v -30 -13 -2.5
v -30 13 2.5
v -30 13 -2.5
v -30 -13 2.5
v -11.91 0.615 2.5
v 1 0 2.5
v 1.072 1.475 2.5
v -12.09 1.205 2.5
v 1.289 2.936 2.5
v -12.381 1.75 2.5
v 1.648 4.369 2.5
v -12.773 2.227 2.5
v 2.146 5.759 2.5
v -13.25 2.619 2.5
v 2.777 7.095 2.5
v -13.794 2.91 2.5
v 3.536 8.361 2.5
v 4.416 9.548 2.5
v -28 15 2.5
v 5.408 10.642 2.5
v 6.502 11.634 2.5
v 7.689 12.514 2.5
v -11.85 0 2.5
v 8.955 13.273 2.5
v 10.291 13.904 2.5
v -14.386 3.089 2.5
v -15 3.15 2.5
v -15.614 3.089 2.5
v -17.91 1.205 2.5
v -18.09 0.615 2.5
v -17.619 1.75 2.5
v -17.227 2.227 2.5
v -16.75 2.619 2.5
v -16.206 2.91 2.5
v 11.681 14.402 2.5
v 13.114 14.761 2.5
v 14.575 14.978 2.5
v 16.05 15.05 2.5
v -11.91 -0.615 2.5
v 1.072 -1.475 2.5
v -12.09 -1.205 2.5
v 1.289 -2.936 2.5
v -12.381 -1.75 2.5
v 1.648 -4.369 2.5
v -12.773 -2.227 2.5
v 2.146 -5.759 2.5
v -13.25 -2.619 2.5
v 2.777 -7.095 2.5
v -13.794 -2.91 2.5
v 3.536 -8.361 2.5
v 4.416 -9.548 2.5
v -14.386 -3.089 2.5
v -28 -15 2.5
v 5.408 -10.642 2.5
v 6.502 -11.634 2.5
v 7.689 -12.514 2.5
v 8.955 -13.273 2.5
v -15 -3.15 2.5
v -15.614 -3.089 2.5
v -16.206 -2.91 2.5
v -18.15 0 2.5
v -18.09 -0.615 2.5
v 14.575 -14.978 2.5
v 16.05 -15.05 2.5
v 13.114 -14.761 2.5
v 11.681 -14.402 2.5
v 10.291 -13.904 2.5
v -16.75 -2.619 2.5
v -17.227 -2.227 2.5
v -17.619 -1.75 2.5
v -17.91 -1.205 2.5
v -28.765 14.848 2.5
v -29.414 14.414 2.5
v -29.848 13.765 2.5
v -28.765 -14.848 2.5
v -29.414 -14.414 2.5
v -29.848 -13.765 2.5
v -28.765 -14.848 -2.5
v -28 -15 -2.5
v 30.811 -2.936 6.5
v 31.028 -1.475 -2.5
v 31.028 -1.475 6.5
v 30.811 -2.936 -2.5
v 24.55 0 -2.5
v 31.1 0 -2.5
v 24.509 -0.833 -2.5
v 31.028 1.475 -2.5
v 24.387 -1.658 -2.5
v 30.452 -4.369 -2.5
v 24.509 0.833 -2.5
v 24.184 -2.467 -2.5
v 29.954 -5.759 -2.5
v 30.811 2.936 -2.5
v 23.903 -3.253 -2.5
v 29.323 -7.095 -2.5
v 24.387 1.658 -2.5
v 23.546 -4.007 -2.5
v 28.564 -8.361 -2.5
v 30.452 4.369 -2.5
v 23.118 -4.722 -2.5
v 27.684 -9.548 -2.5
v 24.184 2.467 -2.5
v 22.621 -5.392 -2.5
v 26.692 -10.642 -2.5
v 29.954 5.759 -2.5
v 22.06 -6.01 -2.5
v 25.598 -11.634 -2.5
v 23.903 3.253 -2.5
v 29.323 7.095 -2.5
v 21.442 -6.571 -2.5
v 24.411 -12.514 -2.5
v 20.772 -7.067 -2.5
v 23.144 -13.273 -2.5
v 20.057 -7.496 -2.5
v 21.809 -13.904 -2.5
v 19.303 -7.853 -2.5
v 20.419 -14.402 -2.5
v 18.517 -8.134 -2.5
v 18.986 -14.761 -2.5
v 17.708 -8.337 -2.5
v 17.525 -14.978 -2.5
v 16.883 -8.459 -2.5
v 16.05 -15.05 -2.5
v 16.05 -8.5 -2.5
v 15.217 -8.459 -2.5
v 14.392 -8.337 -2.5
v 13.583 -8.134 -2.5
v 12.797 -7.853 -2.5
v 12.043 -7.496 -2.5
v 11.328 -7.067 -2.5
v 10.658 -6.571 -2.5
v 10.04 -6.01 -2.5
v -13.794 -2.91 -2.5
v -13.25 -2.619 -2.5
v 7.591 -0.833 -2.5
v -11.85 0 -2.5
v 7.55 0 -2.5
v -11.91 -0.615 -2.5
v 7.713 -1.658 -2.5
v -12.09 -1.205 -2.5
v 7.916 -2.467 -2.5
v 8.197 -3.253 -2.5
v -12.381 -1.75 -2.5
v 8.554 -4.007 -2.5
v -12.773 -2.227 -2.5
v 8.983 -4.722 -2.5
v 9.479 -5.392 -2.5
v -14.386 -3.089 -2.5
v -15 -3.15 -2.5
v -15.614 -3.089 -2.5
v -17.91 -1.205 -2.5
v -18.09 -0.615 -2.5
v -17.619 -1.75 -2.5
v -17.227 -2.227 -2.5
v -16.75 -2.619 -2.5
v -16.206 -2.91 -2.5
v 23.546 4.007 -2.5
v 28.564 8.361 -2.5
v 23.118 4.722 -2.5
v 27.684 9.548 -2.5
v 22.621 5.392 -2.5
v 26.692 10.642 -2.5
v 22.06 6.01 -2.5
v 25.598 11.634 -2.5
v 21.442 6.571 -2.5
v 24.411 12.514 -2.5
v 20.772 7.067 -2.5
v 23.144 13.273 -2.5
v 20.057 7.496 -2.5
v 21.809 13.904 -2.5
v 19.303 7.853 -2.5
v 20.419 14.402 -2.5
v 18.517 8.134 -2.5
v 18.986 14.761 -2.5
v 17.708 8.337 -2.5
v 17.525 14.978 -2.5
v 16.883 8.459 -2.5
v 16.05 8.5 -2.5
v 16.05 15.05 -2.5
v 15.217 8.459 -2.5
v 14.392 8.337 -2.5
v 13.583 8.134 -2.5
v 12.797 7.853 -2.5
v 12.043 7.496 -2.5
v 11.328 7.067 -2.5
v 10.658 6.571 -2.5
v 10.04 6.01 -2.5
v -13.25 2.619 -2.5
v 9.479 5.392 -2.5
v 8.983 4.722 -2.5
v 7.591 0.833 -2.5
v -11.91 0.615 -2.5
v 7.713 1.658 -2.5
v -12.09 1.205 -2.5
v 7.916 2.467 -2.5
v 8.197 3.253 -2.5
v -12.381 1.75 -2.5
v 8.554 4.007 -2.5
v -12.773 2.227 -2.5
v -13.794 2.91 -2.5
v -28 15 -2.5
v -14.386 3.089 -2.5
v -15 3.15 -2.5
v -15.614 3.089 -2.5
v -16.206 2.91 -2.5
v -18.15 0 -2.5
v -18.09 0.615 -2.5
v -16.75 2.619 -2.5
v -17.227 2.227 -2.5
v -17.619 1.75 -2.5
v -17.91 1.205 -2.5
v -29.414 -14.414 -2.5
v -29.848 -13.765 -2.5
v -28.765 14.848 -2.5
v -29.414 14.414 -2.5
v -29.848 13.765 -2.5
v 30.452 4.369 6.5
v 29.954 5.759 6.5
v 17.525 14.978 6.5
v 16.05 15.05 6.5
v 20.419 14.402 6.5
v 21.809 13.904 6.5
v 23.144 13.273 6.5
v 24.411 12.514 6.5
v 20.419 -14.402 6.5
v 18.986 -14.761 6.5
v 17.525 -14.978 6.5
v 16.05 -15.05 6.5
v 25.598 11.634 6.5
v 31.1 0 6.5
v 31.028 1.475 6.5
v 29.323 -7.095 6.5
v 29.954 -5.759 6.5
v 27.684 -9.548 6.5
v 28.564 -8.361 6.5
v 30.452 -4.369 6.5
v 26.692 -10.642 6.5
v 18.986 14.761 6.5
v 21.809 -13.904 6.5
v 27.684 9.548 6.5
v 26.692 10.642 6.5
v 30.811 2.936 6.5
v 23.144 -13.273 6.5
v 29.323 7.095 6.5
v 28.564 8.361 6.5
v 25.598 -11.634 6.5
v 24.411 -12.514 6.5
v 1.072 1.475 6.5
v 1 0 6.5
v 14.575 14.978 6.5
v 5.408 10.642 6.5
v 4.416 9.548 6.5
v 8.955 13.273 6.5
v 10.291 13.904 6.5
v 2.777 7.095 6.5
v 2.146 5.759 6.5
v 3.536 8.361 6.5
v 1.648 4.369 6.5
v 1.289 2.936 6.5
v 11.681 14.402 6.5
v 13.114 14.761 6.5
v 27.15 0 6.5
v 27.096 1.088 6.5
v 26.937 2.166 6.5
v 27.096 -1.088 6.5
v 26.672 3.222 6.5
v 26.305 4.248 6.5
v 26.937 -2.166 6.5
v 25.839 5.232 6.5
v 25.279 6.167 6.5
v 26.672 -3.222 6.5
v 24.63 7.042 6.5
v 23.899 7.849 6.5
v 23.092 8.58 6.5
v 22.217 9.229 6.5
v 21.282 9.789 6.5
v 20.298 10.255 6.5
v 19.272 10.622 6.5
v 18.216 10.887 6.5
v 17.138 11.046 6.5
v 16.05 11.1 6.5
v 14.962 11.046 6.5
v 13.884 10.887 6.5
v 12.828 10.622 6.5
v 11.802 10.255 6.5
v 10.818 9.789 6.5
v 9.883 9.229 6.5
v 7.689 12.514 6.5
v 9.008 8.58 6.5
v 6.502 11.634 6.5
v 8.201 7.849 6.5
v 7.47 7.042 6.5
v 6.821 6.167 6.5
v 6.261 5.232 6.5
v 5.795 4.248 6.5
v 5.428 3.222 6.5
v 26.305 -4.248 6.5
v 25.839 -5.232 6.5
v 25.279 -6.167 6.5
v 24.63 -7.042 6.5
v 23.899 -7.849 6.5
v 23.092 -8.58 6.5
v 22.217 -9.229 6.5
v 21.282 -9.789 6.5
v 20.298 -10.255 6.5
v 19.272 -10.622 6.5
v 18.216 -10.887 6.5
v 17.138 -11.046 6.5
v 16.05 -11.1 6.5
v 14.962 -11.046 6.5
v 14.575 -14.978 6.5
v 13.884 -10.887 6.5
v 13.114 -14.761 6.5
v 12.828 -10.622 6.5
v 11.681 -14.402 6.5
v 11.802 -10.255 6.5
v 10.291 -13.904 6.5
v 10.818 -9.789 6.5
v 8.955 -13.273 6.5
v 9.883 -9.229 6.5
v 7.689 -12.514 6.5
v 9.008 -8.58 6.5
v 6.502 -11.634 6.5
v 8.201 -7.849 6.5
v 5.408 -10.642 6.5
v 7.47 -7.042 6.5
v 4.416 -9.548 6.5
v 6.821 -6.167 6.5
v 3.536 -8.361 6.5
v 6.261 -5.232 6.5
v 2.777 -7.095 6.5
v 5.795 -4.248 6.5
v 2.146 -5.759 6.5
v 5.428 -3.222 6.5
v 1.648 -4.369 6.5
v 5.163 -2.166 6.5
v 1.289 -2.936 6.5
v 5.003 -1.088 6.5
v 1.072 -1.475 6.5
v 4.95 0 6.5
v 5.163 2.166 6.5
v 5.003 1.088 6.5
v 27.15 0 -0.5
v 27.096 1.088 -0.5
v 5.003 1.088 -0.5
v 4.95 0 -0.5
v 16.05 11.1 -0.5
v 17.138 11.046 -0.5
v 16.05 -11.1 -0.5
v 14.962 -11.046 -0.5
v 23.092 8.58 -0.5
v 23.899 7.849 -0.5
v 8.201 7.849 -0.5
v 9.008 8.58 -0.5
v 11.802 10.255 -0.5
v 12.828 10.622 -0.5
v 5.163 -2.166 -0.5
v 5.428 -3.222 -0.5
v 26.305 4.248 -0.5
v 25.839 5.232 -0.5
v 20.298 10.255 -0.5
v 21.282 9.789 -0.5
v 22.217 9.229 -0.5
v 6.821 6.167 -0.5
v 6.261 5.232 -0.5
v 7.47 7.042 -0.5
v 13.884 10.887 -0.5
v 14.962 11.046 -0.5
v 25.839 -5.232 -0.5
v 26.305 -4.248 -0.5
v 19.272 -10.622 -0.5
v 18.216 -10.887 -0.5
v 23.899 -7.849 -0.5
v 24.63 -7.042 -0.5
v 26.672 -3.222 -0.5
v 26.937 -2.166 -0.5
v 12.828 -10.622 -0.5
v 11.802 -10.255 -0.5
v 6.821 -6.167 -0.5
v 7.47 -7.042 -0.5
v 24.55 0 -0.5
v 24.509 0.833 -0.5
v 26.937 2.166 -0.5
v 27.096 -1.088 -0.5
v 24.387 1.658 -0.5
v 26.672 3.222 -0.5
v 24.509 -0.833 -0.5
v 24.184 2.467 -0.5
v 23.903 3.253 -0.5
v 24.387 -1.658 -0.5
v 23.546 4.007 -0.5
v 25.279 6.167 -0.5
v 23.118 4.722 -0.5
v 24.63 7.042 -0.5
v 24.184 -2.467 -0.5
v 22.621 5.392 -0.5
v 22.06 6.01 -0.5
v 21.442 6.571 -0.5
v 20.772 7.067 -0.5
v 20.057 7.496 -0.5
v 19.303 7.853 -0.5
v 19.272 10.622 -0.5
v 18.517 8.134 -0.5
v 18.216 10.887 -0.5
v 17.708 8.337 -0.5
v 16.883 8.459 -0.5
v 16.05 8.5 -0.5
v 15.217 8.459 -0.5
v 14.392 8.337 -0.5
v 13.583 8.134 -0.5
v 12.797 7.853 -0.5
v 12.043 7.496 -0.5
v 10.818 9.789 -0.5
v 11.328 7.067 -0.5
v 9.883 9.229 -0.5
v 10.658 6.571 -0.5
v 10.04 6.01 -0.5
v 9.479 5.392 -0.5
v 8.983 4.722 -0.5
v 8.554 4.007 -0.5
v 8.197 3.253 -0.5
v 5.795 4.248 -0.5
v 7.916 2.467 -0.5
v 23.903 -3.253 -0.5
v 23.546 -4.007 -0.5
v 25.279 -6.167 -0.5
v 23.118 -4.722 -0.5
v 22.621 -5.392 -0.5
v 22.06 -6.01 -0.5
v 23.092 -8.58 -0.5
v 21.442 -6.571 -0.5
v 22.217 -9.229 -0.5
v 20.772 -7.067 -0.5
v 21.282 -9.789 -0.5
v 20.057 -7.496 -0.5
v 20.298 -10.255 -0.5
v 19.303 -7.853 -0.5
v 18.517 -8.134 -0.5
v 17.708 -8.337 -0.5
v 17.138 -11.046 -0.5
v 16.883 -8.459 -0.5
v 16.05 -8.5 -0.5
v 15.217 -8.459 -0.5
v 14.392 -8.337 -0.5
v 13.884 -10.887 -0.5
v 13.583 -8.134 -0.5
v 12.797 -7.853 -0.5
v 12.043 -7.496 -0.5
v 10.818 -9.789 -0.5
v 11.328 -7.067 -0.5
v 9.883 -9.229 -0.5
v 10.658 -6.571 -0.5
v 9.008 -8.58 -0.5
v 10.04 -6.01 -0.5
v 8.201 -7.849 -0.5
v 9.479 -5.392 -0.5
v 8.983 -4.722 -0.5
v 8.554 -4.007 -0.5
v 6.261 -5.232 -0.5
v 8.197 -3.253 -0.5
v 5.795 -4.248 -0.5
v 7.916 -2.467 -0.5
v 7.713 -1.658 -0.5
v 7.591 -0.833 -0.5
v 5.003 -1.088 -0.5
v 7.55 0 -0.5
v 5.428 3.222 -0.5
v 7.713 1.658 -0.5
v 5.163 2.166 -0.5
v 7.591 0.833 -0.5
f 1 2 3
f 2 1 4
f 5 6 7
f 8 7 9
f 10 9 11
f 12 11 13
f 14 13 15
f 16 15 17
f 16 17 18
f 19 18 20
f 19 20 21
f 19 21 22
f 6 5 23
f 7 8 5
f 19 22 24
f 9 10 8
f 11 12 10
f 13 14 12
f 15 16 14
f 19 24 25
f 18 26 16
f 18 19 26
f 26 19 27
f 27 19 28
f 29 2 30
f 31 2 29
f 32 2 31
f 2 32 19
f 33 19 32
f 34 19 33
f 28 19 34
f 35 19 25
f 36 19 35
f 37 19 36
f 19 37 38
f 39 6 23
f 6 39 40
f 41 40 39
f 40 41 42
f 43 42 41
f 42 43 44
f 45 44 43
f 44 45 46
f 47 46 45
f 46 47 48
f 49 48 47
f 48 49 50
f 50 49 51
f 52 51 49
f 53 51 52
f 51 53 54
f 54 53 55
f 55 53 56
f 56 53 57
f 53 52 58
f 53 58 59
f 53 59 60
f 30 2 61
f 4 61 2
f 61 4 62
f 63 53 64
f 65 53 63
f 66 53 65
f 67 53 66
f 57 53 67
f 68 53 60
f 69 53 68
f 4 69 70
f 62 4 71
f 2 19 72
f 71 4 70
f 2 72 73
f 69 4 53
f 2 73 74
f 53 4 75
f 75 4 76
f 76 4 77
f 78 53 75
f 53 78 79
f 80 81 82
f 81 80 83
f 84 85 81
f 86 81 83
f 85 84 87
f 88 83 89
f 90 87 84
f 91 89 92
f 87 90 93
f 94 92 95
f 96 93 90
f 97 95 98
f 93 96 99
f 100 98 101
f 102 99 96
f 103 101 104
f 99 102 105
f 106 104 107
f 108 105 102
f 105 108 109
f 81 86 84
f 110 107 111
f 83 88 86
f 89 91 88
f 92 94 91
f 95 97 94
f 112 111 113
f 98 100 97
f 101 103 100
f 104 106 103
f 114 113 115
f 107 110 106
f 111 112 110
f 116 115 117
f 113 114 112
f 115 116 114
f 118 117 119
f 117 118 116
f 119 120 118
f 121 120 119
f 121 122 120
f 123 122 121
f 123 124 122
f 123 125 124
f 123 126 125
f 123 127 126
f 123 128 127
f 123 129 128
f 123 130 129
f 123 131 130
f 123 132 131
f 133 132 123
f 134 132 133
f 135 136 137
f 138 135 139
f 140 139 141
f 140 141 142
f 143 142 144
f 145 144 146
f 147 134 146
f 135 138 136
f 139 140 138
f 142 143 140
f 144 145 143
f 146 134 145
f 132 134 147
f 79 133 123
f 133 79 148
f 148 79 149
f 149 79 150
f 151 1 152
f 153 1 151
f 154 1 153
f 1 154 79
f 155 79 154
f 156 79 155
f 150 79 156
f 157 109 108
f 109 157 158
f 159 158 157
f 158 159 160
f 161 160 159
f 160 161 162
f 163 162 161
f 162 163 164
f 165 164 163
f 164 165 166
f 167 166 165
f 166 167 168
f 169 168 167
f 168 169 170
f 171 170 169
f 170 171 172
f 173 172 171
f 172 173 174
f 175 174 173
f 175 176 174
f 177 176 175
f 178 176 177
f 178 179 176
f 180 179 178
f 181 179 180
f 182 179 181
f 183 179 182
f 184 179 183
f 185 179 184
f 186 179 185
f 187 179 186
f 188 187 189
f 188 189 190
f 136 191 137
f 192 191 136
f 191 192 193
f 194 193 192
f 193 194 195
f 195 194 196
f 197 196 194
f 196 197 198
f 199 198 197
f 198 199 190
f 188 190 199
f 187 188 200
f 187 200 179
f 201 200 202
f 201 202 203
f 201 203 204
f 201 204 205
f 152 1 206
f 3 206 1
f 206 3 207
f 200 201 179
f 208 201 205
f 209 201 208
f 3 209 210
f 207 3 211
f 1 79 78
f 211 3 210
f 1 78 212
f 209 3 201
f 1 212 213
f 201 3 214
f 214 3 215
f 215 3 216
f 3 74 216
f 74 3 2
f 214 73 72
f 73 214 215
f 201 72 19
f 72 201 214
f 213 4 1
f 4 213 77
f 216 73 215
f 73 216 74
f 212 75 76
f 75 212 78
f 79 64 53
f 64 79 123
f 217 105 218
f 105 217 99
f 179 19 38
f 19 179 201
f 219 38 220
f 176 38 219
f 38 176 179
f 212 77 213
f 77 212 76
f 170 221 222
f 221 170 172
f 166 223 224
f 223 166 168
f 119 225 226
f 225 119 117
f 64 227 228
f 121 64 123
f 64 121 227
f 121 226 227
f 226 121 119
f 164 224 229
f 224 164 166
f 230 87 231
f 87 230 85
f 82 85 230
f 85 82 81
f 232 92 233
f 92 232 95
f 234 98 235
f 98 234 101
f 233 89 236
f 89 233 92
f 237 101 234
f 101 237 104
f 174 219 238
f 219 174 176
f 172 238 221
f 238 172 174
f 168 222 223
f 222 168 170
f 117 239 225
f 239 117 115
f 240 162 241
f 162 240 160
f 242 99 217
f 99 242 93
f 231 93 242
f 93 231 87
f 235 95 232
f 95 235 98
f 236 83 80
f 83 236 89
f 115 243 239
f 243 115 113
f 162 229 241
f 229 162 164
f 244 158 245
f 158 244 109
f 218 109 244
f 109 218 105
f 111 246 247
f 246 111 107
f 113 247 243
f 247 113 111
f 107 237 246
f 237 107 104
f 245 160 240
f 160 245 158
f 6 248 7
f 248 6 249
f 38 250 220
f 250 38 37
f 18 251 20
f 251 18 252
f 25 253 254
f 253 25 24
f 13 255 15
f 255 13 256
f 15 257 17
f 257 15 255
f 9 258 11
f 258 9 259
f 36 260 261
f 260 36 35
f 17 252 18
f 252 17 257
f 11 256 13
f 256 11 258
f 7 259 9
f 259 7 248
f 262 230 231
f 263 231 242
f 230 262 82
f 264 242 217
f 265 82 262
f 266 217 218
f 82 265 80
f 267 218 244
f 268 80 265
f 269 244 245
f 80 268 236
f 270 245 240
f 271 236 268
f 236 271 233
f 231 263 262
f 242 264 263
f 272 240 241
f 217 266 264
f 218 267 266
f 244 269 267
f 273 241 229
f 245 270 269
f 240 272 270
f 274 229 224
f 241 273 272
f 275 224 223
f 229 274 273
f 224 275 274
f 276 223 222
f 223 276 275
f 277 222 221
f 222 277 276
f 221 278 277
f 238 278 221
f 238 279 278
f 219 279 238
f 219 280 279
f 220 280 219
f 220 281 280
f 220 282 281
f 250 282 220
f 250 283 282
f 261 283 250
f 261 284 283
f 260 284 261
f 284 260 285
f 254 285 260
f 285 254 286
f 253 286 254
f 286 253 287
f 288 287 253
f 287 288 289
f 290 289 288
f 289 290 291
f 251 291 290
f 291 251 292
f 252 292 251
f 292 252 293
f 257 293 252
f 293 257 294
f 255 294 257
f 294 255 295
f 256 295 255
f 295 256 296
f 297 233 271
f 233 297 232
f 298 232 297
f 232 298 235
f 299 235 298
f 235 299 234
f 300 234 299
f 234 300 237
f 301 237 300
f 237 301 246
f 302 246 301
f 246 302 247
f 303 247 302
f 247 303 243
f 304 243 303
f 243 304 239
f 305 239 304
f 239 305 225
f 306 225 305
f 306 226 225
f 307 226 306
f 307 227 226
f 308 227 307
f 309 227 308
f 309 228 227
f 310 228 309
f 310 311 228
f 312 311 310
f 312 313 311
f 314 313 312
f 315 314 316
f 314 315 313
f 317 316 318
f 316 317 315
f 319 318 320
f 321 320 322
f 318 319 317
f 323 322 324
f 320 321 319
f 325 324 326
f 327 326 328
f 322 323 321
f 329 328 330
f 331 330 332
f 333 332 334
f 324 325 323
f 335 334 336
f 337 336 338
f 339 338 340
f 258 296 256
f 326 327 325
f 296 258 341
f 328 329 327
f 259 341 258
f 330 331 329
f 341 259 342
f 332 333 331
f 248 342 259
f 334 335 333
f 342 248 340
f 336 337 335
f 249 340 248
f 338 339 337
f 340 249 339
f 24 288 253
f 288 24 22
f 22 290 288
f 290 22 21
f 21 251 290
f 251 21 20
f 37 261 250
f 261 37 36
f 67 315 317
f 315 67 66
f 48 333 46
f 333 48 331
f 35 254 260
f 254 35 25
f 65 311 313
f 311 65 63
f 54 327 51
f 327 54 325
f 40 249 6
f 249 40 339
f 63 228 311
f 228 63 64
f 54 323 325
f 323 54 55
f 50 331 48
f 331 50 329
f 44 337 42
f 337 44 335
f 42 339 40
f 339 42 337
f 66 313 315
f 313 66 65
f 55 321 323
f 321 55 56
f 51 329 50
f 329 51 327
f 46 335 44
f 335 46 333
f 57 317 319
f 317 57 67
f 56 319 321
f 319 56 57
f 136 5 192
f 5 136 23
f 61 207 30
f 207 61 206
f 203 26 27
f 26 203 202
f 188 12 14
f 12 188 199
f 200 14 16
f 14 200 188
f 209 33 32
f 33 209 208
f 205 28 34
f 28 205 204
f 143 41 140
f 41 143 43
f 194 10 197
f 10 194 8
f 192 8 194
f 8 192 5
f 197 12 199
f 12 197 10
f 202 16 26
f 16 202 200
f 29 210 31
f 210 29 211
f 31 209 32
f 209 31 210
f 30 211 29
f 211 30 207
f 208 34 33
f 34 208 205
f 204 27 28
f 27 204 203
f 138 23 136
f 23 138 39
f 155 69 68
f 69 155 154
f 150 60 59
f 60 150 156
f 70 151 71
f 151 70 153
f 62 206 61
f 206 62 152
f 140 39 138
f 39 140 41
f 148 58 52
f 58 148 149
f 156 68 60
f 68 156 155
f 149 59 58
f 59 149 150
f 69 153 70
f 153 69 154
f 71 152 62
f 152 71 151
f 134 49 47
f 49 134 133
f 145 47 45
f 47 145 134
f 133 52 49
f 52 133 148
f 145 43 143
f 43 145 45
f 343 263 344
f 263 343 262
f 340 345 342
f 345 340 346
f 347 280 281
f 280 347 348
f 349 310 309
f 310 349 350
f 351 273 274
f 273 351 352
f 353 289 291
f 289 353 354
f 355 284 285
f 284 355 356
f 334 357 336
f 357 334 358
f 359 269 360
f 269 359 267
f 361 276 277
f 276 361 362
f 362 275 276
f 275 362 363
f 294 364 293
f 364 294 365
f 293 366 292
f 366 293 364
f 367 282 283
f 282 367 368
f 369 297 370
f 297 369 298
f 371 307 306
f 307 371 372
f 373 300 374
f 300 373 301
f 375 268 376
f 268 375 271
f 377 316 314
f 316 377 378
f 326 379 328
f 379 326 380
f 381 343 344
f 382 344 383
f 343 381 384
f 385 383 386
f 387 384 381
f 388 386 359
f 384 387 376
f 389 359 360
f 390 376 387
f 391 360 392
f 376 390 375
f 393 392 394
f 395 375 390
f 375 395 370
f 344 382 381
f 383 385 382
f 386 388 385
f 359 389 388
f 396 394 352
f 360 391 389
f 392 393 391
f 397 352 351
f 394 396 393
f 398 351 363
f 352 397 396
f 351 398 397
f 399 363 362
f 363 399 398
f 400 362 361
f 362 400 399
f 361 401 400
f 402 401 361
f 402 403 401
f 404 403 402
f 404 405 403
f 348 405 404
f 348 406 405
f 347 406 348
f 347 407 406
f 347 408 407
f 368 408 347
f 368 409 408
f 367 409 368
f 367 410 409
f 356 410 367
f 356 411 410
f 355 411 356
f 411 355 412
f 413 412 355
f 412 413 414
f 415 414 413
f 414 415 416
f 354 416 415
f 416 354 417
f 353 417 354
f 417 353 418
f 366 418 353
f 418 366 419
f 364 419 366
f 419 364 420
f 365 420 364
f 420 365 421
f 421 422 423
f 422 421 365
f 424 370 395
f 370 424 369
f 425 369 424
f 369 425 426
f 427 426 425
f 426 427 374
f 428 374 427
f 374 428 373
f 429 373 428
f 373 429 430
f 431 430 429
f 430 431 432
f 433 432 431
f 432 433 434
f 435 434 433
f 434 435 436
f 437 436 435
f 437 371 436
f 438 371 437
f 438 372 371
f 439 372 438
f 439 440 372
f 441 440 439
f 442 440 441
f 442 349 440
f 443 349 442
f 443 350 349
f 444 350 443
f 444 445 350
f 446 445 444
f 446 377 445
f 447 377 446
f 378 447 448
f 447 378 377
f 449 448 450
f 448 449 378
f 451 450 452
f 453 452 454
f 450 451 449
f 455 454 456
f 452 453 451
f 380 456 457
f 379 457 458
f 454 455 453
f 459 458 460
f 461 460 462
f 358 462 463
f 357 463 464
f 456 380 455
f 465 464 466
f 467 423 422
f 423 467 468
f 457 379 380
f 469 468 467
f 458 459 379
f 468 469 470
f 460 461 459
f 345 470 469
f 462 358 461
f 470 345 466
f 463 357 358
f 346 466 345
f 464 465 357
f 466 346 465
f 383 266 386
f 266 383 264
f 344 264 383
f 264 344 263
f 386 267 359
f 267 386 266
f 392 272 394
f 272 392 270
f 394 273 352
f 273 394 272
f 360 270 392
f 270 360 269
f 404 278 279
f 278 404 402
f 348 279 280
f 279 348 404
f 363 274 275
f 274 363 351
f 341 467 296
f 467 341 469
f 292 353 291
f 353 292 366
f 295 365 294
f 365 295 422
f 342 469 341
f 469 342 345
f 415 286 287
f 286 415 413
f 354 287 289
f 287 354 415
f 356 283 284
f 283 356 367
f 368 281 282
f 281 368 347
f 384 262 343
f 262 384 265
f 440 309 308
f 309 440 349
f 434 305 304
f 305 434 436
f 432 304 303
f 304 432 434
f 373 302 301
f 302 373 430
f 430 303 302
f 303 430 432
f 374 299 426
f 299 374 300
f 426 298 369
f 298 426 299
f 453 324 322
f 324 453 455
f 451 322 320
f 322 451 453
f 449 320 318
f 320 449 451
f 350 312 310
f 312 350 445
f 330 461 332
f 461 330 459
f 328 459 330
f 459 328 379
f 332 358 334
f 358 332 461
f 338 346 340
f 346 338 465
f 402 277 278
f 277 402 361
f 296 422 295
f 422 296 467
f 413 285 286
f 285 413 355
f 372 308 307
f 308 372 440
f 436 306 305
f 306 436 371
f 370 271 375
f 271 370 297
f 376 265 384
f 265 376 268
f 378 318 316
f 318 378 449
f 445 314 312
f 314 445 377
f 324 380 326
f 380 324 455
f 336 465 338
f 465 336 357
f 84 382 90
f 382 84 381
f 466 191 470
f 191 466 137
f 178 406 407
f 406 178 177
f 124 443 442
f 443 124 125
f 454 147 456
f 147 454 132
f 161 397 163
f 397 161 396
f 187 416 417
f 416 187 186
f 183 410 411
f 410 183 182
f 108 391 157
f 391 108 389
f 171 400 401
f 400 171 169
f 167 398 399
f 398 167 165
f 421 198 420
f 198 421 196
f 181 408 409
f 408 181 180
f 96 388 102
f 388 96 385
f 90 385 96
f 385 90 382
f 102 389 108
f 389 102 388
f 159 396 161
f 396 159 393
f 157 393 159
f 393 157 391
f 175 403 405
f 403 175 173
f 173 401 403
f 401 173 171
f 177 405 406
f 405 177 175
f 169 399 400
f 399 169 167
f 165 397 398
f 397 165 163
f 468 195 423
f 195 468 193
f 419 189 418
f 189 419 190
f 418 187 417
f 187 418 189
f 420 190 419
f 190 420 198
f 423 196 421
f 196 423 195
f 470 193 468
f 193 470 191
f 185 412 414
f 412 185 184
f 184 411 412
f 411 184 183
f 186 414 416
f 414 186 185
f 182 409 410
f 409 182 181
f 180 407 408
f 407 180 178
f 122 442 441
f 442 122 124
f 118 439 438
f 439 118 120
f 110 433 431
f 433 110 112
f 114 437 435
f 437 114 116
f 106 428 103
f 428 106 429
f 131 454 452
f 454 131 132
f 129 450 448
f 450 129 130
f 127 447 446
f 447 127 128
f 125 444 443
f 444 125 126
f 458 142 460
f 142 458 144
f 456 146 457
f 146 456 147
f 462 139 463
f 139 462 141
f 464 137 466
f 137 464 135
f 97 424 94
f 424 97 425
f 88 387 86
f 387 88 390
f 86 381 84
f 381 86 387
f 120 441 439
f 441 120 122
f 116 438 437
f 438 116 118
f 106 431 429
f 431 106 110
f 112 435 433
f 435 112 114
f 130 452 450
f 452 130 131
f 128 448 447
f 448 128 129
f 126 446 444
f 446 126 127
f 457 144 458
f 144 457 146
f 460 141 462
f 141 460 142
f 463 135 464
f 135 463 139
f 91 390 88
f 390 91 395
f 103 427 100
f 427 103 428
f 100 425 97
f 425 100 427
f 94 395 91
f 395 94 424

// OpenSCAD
/* 
   === RebeliX BoX ===

   z bearing top holder
   GNU GPL v3
   Martin Neruda <neruda@RebeliX.cz>
   http://www.RebeliX.cz
*/
//include <../configuration.scad>
include <../inc/functions.scad>

part_width = profile_width;
holder_height = 9;

corner_rad = 4;

module Z_bearing_holder_base()
{
  hull()
  {
  translate([-profile_width/2 + corner_rad/2,0,0]) rounded_box(profile_width + corner_rad,part_width,coupler_thickness,corner_rad,1,1,1,1);
  
  translate([(big_bearing_OUT_D + 10)/2,0,0]) cylinder(d=big_bearing_OUT_D + 8,h=coupler_thickness,$fn=64,center=true);
  }	  
  translate([(big_bearing_OUT_D + 10)/2,0,-coupler_thickness/2 + holder_height/2]) cylinder(d=big_bearing_OUT_D + 8,h=holder_height,$fn=64,center=true);
}

module Z_bearing_holder_cuts()
{ 
  // Otvory pro sroub
  translate([-profile_width/2,0,0])cylinder(d=M6_screw_D,h=20,$fn=32,center=true);
  
  // Otvor pro lozisko
  translate([(big_bearing_OUT_D + 10)/2,0,-coupler_thickness/2 + holder_height]) cylinder(d=big_bearing_OUT_D + 0.1,h=2*bearing_608_H,$fn=64,center=true);
  
  translate([(big_bearing_OUT_D + 10)/2,0,0]) cylinder(d=17,h=40,$fn=64,center=true);
}

module Z_bearing_holder()
{
  difference()
  {
	Z_bearing_holder_base();
	Z_bearing_holder_cuts();
  }
}

Z_bearing_holder();
